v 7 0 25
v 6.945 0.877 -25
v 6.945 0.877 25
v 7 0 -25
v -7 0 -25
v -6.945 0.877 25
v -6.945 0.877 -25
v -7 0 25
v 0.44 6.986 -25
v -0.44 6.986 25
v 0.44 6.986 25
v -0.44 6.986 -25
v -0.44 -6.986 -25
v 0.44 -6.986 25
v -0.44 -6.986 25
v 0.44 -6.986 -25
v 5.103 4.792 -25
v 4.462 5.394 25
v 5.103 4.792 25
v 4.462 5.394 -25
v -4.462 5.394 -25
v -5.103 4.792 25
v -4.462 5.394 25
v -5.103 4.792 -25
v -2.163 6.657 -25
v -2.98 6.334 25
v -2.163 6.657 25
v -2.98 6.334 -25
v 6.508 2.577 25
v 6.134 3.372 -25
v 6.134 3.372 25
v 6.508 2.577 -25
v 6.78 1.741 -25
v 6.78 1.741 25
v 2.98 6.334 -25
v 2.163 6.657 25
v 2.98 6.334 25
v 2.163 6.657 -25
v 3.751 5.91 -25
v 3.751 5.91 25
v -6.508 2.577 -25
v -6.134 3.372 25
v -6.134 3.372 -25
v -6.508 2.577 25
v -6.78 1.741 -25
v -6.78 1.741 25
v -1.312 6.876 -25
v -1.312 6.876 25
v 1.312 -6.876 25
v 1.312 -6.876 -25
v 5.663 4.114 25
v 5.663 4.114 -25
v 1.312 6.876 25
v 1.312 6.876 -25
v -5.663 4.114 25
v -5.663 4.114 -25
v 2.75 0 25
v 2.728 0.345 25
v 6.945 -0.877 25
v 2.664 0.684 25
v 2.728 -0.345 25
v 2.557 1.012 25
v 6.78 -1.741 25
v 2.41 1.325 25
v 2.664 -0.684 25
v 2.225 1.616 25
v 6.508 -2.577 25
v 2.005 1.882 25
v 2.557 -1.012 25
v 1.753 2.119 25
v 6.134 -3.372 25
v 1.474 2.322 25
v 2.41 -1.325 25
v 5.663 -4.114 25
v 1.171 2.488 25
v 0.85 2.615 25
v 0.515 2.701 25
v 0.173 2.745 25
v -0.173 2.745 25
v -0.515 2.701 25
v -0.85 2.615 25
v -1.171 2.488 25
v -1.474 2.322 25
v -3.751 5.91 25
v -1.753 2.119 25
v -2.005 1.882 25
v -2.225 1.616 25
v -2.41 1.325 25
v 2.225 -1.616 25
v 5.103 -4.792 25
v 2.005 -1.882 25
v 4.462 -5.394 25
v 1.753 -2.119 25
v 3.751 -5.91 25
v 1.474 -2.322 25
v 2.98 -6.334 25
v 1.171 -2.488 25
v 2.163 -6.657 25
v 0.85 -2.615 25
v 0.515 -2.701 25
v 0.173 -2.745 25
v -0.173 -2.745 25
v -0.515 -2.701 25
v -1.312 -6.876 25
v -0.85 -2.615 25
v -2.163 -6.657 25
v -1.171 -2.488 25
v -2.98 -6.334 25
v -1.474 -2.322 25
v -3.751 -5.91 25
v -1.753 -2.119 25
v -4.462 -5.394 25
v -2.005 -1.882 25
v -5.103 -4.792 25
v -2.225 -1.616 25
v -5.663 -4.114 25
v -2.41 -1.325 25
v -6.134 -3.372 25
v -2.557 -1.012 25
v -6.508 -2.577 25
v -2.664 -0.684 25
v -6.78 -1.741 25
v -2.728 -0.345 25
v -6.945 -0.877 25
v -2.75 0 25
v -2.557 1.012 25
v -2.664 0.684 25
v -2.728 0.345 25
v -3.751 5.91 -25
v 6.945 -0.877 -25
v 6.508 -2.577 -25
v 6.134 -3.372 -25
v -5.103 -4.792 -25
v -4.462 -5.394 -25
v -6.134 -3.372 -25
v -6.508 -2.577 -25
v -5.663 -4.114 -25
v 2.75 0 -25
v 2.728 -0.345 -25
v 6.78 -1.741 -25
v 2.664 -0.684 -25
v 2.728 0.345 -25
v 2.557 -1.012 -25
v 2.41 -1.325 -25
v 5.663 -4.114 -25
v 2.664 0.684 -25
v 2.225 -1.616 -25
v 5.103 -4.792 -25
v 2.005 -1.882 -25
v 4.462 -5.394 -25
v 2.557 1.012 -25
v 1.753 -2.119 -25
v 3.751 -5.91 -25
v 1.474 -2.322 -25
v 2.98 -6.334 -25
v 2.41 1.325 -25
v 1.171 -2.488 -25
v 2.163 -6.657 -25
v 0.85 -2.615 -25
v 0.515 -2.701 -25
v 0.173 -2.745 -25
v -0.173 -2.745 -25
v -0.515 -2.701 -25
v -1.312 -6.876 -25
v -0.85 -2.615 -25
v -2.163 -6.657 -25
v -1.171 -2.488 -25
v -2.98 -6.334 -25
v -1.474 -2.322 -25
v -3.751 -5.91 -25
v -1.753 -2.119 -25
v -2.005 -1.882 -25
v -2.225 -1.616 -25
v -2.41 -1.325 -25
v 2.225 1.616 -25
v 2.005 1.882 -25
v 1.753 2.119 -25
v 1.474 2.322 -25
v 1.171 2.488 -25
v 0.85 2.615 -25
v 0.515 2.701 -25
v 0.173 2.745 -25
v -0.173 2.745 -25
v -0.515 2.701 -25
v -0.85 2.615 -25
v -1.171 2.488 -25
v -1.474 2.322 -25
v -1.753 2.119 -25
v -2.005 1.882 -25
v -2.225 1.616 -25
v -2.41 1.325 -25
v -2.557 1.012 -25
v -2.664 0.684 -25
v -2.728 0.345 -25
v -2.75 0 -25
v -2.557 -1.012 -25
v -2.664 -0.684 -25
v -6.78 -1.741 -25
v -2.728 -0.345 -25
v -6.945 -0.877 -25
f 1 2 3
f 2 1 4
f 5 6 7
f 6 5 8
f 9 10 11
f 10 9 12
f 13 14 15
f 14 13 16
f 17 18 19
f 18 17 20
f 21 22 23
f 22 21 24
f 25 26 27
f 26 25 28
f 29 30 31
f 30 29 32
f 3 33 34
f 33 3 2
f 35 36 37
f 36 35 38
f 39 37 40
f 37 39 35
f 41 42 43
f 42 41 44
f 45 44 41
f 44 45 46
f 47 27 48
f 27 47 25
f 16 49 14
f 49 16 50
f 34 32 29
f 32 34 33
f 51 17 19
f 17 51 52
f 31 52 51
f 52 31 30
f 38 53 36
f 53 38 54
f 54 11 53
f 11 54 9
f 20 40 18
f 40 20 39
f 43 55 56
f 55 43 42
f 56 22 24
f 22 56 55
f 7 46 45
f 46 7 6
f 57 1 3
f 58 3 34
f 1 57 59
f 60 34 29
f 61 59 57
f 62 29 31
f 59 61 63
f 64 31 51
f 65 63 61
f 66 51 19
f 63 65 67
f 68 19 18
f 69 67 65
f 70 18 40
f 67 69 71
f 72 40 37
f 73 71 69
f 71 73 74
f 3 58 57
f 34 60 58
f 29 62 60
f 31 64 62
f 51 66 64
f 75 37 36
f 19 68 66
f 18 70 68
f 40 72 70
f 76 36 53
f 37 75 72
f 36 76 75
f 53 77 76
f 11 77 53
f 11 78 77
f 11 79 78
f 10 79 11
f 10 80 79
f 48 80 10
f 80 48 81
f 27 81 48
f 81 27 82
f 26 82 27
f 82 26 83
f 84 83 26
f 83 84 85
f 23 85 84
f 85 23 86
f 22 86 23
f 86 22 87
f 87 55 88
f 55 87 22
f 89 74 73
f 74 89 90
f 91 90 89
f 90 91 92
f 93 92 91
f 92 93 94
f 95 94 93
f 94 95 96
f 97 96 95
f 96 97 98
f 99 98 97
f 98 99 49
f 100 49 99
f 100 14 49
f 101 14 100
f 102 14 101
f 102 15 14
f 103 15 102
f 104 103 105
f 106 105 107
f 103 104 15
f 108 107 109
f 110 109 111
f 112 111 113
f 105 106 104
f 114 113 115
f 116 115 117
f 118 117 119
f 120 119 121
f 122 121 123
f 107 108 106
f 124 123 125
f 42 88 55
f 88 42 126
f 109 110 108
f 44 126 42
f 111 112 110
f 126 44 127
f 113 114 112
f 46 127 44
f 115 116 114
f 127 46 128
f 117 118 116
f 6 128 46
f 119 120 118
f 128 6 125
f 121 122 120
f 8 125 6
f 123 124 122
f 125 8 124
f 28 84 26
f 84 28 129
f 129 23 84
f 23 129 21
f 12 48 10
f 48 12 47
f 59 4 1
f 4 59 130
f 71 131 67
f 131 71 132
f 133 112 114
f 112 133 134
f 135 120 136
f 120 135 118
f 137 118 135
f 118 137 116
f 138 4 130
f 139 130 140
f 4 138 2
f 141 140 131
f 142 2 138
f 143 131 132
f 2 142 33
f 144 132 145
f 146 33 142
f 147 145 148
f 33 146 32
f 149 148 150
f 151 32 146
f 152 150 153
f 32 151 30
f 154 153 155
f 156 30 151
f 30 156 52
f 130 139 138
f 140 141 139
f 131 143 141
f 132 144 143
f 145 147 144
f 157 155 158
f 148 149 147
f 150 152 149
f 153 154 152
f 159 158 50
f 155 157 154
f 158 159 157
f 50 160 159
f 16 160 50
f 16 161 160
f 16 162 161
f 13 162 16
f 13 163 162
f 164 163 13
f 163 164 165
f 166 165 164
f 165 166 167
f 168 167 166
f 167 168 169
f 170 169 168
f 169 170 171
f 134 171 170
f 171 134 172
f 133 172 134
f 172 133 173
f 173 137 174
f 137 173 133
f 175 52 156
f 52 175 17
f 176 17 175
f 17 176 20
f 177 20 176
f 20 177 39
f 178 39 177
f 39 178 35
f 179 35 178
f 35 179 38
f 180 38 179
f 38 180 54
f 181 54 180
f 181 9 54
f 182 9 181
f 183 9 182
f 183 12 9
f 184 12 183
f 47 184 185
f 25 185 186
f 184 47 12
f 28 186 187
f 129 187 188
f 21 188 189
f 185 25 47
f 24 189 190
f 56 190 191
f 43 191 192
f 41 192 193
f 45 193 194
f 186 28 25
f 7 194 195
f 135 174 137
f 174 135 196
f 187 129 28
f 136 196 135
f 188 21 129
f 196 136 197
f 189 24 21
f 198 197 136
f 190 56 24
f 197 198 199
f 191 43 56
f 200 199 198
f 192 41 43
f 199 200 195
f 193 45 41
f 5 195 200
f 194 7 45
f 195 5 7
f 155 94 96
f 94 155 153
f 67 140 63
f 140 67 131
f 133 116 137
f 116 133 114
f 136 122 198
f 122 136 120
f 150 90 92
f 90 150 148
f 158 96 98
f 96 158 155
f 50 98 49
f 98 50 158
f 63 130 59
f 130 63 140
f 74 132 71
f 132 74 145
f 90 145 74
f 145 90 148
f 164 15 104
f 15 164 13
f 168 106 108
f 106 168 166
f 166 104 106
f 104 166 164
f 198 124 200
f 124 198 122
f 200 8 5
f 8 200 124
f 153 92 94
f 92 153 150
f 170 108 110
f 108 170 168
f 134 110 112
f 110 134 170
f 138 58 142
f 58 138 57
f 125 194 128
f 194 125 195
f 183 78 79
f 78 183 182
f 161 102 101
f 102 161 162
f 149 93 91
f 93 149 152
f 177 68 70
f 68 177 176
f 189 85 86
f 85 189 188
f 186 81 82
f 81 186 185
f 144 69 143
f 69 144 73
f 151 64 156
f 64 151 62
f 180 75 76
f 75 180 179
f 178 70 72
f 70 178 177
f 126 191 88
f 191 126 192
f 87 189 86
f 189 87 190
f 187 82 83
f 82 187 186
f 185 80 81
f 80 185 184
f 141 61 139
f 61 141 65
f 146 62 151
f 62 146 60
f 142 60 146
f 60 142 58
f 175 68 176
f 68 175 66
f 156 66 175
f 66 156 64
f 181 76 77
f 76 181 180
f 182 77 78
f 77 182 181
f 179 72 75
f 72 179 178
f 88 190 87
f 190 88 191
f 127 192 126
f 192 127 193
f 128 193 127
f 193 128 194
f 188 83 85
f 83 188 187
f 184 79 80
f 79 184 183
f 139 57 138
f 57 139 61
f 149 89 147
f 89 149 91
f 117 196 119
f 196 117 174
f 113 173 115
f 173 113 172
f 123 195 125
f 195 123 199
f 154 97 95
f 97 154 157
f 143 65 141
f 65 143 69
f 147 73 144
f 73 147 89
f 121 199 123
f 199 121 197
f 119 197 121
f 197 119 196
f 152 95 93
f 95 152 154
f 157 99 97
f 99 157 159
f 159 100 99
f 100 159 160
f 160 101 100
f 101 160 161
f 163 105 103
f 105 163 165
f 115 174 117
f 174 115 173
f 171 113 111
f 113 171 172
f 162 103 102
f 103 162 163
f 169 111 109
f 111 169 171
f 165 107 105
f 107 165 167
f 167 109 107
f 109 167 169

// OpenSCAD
$fn = 50;


difference() {
	union() {
		translate(v = [0, 0, -25.0000000000]) {
			cylinder(h = 50, r = 7.0000000000);
		}
	}
	union() {
		translate(v = [0, 0, -100.0000000000]) {
			cylinder(h = 200, r = 2.7500000000);
		}
	}
}
